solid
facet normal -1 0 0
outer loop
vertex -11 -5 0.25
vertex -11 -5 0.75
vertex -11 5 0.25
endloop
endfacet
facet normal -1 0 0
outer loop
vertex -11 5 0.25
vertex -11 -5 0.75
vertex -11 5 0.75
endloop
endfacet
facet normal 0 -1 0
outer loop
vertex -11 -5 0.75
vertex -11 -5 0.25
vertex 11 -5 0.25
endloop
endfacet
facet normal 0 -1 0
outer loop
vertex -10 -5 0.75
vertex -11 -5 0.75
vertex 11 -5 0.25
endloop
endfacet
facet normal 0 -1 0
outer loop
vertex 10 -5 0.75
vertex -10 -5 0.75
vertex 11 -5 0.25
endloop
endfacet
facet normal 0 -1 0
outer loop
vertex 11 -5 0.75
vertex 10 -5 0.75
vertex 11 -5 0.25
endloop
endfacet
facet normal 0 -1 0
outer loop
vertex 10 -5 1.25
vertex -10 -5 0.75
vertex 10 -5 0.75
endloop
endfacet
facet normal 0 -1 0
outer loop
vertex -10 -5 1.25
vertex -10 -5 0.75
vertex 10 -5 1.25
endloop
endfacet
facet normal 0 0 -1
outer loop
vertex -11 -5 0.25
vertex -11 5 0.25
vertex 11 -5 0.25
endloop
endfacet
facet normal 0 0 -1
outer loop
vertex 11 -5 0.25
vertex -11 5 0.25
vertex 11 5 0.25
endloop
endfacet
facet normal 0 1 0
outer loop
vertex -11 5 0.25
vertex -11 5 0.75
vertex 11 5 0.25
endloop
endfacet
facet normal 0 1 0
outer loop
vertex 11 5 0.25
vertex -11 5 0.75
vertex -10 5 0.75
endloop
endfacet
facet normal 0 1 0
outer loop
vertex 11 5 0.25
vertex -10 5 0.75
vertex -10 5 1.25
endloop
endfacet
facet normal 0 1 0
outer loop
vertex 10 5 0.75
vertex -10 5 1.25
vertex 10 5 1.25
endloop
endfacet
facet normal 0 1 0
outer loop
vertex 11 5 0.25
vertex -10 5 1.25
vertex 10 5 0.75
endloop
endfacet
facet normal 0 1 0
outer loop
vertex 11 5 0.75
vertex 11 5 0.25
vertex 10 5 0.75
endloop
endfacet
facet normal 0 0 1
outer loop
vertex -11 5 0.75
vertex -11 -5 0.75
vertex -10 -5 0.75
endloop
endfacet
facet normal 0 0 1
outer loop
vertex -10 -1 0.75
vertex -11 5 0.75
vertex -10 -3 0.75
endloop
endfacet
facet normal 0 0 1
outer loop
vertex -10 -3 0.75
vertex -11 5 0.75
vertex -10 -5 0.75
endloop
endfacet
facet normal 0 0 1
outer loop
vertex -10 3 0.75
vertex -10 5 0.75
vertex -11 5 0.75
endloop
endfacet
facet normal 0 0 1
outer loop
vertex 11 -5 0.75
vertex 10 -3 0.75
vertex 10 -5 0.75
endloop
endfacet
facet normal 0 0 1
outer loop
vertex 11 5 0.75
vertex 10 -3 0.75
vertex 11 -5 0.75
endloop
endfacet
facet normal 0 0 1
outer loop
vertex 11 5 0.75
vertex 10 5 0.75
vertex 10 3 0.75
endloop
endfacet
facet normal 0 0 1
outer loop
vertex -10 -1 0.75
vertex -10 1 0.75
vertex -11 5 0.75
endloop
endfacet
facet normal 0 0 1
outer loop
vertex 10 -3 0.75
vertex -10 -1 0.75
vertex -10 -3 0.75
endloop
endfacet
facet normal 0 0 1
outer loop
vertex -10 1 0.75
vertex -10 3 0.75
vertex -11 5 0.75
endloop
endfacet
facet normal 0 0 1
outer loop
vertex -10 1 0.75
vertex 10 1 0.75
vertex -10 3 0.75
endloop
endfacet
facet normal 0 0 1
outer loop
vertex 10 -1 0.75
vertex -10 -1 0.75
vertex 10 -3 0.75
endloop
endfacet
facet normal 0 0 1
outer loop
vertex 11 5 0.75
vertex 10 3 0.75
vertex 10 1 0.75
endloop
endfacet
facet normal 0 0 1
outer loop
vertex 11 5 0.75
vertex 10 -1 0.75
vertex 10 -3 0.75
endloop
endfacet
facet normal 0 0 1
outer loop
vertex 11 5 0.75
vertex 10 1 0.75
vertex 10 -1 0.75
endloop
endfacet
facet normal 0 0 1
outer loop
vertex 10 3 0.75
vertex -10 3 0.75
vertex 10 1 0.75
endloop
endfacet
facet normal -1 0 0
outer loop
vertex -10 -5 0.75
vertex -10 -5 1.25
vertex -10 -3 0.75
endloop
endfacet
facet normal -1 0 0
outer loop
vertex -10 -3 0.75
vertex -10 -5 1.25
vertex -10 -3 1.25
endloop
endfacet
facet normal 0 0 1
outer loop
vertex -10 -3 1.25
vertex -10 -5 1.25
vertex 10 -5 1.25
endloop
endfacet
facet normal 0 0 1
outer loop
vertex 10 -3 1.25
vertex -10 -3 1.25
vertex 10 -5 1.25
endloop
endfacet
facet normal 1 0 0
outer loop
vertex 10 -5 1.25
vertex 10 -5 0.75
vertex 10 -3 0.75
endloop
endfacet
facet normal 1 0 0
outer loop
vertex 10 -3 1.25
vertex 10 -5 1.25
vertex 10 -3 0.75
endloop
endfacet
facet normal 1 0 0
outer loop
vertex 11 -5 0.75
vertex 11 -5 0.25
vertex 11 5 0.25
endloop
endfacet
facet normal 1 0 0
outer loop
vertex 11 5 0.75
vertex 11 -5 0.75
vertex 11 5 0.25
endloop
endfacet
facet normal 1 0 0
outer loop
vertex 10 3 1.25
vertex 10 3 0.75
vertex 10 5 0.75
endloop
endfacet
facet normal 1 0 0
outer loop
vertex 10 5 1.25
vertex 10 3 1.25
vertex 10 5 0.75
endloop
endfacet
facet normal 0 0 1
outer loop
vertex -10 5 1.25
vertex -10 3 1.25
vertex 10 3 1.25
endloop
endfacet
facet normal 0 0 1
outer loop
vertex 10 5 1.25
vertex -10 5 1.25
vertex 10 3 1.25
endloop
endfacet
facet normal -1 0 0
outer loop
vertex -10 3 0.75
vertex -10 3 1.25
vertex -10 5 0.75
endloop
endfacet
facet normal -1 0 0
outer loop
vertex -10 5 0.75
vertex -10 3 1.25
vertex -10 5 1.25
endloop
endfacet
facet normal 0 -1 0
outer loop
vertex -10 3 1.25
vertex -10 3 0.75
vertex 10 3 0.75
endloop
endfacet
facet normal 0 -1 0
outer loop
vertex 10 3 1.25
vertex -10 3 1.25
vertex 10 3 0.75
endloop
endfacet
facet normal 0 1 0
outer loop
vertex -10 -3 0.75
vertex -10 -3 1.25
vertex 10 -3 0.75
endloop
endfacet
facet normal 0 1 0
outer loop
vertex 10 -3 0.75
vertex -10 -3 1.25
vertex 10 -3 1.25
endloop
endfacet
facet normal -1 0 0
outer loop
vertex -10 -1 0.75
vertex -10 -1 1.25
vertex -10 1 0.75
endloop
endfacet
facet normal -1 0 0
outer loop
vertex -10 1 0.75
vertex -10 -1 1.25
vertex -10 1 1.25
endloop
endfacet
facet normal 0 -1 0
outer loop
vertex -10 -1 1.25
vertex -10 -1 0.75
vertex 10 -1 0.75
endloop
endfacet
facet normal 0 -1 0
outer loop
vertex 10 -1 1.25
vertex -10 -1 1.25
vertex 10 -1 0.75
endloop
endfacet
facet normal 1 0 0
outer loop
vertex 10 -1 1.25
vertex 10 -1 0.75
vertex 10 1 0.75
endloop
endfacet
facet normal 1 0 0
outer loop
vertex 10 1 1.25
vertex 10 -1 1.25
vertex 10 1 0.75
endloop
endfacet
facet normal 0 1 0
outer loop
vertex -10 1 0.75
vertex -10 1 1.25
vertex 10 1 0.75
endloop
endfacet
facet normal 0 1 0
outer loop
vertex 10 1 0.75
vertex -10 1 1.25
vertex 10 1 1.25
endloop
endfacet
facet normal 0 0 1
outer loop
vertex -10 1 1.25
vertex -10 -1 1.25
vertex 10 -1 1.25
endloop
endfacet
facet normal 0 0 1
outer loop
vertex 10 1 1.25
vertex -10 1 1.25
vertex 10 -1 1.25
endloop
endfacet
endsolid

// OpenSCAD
// file: functions.scad
// PRUSA Mendel  
// Functions used in many files
// GNU GPL v2
// Josef Průša
// josefprusa@me.com
// prusadjs.cz
// http://www.reprap.org/wiki/Prusa_Mendel
// http://github.com/prusajr/PrusaMendel

module nut(d,h,horizontal=true){
cornerdiameter =  (d / 2) / cos (180 / 6);
cylinder(h = h, r = cornerdiameter, $fn = 6);
if(horizontal){
for(i = [1:6]){
	rotate([0,0,60*i]) translate([-cornerdiameter-0.2,0,0]) rotate([0,0,-45]) cube(size = [2,2,h]);
}}
}

// By nophead
module polyhole(d,h) {
    n = max(round(2 * d),3);
    rotate([0,0,180])
        cylinder(h = h, r = (d / 2) / cos (180 / n), $fn = n);
}




module roundcorner(diameter){
	difference(){
		cube(size = [diameter,diameter,99], center = false);
		translate(v = [diameter, diameter, 0]) cylinder(h = 100, r=diameter, center=true);
	}
}
// file: metric.scad
// PRUSA Mendel  
// Default metric sizes
// GNU GPL v3
// Josef Průša
// josefprusa@me.com
// prusadjs.cz
// http://www.reprap.org/wiki/Prusa_Mendel
// http://github.com/prusajr/PrusaMendel

// DONT CHANGE THIS FILE! ALTER VALUES IN CONFIGURATION.SCAD INSTEAD

// RODS

threaded_rod_diameter = 8.7;
threaded_rod_diameter_horizontal = 8.7;
smooth_bar_diameter = 8;
smooth_bar_diameter_horizontal = 8.5;

// Nuts and bolts

m8_diameter = 9;
m8_nut_diameter = 14.1;

m4_diameter = 4.5;
m4_nut_diameter = 9;

m3_diameter = 3.6;
m3_nut_diameter = 5.5;
m3_nut_diameter_horizontal = 6.1;

// Bushing holder

bushing_core_diameter = smooth_bar_diameter;
bushing_material_thickness = 1;

// Motors

motor_shaft = 5.5;
// file: configuration.scad
// PRUSA Mendel  
// Configuration file
// GNU GPL v3
// Josef Průša
// josefprusa@me.com
// prusadjs.cz
// http://www.reprap.org/wiki/Prusa_Mendel
// http://github.com/prusajr/PrusaMendel

// PLEASE SELECT ONE OF THE CONFIGURATIONS BELOW
// BY UN-COMMENTING IT

// Uncomment for metric settings
// METRIC METRIC METRIC METRIC METRIC METRIC METRIC METRIC 

include <metric.scad>;

// CUSTOM CUSTOM CUSTOM CUSTOM CUSTOM CUSTOM CUSTOM CUSTOM CUSTOM

thin_wall = 3;

// LM8UU
linear = true;


// CHANGE ONLY THE STUFF YOU KNOW
// IT WILL REPLACE DEFAULT SETTING

// RODS

// threaded_rod_diameter = 0;
// threaded_rod_diameter_horizontal = 0;
// smooth_bar_díameter = 0;
// smooth_bar_díameter_horizontal = 0;

// Nuts and bolts

// m8_diameter = 0;
// m8_nut_diameter = 0;

// m4_diameter = 0;
// m4_nut_diameter = 0;

// m3_diameter = 0;
// m3_nut_diameter = 0;

// Bushing holder

// bushing_core_diameter = smooth_bar_díameter;
// bushing_material_thickness = 0;


///counted stuff
m3_nut_diameter_bigger = ((m3_nut_diameter  / 2) / cos (180 / 6))*2;

// functions 
include <functions.scad>
// main file
// PRUSA Mendel  
// Bushings
// GNU GPL v3
// Josef Průša
// josefprusa@me.com
// prusadjs.cz
// http://www.reprap.org/wiki/Prusa_Mendel
// http://github.com/prusajr/PrusaMendel

include <configuration.scad>

/**
 * @id printable-bushing
 * @name Printable Bushing
 * @category Printed
 */ 

module printable_bushing(){
	translate(v = [0,0,0.5]){ 
		
		cube(size = [22,10,0.5], center=true);
		translate(v = [0,0,0.5]) cube(size = [20,2,0.5], center=true);
		translate(v = [0,4,0.5]) cube(size = [20,2,0.5], center=true);
		translate(v = [0,-4,0.5]) cube(size = [20,2,0.5], center=true);
	}
}
printable_bushing();
